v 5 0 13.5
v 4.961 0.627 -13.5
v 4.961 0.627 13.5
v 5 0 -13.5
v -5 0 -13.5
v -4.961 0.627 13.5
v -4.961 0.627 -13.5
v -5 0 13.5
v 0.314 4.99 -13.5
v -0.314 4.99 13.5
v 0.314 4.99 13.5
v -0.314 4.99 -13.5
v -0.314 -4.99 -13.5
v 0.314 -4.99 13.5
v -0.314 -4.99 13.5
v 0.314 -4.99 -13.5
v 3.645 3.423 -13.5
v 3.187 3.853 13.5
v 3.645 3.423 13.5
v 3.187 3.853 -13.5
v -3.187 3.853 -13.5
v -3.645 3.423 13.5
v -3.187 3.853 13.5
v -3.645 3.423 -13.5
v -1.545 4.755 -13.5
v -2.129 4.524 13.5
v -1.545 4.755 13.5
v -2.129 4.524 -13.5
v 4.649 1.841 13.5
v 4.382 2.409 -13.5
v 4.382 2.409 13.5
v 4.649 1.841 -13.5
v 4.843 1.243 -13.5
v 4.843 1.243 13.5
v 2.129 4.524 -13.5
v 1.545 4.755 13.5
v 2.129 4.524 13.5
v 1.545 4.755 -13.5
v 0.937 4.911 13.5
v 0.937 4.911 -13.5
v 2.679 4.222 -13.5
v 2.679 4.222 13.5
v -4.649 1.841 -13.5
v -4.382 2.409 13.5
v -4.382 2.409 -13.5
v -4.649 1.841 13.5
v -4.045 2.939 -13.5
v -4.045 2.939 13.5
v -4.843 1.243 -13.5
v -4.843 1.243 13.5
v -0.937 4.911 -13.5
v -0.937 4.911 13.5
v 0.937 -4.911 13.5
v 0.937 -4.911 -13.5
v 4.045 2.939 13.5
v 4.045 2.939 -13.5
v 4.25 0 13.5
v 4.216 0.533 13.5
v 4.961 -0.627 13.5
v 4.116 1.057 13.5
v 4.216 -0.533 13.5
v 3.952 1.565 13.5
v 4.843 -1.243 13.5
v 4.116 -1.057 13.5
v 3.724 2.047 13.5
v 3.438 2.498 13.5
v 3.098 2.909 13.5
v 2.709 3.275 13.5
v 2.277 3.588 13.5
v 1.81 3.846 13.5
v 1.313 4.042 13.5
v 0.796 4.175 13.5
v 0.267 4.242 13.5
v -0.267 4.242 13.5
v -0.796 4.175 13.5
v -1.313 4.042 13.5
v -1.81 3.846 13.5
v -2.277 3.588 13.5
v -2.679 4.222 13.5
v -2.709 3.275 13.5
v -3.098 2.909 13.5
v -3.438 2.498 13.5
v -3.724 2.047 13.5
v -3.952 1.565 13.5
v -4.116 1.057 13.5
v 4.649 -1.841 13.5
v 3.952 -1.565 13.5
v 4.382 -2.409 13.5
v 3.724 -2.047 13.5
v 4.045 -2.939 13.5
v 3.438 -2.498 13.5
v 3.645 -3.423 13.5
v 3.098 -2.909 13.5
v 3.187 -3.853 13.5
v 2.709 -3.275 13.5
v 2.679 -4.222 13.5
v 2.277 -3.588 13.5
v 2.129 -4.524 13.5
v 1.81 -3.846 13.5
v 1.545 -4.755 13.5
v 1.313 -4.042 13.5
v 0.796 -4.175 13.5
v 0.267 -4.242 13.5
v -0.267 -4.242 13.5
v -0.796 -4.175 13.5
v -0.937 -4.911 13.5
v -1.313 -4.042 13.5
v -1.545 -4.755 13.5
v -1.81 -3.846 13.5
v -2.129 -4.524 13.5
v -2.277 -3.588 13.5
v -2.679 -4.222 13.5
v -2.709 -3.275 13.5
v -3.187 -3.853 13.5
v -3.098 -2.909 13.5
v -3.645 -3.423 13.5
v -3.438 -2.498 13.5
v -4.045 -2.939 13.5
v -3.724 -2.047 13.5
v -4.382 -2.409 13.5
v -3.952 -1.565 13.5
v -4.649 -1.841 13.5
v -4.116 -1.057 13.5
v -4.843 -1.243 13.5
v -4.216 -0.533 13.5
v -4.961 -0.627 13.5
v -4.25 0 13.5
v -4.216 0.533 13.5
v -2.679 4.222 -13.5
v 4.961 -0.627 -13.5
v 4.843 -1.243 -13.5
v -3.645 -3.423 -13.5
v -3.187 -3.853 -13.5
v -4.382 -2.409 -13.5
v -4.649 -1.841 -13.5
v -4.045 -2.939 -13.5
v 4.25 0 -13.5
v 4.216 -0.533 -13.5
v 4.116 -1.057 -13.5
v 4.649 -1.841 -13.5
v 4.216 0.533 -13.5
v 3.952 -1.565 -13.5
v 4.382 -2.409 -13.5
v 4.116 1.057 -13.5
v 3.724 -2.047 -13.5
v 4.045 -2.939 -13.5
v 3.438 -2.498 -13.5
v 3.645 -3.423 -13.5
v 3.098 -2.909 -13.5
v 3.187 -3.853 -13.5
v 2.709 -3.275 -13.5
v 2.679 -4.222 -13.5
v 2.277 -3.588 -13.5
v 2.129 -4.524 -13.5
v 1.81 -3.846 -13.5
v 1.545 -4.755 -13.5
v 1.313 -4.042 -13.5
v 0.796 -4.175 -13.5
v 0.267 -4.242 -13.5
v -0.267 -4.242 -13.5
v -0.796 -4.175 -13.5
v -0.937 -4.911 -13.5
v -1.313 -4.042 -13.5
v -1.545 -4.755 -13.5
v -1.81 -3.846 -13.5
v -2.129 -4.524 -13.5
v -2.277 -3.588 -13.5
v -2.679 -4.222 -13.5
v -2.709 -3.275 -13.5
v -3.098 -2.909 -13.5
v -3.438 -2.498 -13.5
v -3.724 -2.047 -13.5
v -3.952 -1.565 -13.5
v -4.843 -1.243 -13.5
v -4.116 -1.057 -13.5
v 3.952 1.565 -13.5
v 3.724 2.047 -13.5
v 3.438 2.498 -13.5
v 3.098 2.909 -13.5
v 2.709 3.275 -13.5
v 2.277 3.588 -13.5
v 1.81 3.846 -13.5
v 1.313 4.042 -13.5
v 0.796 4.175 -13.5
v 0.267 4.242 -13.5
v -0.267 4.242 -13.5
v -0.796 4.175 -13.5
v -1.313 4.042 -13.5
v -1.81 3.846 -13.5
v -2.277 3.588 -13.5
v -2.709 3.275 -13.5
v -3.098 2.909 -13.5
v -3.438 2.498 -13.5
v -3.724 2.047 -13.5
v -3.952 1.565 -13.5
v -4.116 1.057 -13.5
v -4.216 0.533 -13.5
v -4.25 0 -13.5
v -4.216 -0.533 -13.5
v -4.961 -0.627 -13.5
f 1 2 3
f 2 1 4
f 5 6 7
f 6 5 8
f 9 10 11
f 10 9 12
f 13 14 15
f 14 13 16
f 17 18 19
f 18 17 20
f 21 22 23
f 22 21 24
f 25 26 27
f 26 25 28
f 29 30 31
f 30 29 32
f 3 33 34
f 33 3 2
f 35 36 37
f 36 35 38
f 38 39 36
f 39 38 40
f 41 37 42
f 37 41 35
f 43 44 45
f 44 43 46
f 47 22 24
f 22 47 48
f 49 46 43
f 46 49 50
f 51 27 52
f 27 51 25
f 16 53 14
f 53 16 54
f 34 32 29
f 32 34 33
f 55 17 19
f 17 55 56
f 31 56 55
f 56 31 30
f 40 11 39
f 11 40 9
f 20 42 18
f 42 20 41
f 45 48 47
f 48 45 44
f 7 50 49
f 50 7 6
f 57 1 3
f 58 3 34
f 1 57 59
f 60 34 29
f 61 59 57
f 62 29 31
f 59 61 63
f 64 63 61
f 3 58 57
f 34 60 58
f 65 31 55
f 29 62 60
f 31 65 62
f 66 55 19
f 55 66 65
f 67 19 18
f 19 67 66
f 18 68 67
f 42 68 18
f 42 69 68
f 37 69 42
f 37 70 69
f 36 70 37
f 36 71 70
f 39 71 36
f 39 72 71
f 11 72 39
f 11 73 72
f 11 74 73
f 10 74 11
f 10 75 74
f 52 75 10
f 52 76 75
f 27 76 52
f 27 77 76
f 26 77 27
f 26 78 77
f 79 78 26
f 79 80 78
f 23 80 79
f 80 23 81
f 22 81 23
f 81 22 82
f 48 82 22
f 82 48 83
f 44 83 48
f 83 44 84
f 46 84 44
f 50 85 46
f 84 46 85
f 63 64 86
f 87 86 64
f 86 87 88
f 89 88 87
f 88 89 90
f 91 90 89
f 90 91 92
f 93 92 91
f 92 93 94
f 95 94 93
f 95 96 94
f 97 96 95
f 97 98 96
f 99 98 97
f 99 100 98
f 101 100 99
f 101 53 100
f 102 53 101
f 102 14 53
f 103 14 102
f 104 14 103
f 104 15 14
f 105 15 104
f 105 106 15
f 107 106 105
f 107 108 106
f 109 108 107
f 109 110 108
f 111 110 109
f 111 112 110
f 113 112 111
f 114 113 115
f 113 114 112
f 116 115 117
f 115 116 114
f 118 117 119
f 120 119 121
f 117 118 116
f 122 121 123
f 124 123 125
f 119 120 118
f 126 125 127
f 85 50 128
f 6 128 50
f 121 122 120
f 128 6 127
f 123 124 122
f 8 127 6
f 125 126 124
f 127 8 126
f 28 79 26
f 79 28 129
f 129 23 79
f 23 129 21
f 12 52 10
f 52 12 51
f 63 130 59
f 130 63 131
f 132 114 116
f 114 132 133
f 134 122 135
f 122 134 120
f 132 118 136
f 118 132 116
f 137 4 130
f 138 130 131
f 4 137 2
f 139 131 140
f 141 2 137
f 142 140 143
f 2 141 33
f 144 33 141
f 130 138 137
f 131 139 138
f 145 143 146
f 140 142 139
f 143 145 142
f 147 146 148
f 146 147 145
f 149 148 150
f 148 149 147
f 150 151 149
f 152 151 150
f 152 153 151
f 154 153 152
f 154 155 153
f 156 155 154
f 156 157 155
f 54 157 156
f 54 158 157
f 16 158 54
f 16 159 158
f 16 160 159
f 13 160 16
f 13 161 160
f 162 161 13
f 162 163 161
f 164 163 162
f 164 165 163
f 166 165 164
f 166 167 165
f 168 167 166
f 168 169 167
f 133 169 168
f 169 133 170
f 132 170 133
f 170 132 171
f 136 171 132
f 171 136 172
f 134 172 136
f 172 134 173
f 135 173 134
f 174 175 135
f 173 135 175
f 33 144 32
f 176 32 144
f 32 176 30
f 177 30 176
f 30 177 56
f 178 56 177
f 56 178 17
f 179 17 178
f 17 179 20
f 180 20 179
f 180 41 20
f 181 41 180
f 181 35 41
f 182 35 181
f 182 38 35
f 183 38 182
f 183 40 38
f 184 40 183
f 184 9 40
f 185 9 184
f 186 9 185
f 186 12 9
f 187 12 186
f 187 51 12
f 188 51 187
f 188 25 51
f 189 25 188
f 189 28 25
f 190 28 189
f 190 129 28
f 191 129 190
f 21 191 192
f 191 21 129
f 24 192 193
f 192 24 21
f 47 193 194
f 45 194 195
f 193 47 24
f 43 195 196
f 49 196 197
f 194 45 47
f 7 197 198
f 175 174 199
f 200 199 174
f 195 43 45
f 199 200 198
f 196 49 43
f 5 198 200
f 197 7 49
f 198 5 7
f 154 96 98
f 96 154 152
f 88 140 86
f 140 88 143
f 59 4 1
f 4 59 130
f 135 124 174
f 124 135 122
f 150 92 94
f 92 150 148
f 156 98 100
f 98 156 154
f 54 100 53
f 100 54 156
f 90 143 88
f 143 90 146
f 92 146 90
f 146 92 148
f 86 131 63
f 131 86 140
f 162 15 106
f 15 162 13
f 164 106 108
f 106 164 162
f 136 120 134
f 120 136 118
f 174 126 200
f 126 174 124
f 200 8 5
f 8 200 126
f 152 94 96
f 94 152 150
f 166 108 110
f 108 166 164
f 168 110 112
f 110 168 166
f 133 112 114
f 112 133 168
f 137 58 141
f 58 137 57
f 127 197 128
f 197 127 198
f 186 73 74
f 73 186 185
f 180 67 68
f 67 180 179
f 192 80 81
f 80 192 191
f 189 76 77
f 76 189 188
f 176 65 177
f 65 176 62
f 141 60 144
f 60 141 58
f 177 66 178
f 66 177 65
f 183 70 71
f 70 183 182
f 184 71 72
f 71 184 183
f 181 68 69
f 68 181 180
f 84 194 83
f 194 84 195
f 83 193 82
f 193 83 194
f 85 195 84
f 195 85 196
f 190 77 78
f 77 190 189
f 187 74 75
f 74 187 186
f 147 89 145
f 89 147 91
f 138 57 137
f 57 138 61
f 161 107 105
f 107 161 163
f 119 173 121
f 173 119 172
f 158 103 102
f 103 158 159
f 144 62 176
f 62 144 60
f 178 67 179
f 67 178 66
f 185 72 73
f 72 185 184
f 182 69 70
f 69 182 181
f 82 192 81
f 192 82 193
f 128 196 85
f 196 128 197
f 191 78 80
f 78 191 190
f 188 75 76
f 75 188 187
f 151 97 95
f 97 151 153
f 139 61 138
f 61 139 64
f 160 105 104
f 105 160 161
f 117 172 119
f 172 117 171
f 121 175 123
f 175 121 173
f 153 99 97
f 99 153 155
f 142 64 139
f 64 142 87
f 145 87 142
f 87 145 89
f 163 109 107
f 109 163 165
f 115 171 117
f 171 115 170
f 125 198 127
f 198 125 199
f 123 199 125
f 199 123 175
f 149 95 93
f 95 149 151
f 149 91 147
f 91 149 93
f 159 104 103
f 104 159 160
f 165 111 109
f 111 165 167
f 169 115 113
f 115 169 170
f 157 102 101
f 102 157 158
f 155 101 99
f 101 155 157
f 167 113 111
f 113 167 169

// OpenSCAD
$fn = 50;


difference() {
	union() {
		translate(v = [0, 0, -13.5000000000]) {
			cylinder(h = 27, r = 5.0000000000);
		}
	}
	union() {
		translate(v = [0, 0, -100.0000000000]) {
			cylinder(h = 200, r = 4.2500000000);
		}
	}
}
